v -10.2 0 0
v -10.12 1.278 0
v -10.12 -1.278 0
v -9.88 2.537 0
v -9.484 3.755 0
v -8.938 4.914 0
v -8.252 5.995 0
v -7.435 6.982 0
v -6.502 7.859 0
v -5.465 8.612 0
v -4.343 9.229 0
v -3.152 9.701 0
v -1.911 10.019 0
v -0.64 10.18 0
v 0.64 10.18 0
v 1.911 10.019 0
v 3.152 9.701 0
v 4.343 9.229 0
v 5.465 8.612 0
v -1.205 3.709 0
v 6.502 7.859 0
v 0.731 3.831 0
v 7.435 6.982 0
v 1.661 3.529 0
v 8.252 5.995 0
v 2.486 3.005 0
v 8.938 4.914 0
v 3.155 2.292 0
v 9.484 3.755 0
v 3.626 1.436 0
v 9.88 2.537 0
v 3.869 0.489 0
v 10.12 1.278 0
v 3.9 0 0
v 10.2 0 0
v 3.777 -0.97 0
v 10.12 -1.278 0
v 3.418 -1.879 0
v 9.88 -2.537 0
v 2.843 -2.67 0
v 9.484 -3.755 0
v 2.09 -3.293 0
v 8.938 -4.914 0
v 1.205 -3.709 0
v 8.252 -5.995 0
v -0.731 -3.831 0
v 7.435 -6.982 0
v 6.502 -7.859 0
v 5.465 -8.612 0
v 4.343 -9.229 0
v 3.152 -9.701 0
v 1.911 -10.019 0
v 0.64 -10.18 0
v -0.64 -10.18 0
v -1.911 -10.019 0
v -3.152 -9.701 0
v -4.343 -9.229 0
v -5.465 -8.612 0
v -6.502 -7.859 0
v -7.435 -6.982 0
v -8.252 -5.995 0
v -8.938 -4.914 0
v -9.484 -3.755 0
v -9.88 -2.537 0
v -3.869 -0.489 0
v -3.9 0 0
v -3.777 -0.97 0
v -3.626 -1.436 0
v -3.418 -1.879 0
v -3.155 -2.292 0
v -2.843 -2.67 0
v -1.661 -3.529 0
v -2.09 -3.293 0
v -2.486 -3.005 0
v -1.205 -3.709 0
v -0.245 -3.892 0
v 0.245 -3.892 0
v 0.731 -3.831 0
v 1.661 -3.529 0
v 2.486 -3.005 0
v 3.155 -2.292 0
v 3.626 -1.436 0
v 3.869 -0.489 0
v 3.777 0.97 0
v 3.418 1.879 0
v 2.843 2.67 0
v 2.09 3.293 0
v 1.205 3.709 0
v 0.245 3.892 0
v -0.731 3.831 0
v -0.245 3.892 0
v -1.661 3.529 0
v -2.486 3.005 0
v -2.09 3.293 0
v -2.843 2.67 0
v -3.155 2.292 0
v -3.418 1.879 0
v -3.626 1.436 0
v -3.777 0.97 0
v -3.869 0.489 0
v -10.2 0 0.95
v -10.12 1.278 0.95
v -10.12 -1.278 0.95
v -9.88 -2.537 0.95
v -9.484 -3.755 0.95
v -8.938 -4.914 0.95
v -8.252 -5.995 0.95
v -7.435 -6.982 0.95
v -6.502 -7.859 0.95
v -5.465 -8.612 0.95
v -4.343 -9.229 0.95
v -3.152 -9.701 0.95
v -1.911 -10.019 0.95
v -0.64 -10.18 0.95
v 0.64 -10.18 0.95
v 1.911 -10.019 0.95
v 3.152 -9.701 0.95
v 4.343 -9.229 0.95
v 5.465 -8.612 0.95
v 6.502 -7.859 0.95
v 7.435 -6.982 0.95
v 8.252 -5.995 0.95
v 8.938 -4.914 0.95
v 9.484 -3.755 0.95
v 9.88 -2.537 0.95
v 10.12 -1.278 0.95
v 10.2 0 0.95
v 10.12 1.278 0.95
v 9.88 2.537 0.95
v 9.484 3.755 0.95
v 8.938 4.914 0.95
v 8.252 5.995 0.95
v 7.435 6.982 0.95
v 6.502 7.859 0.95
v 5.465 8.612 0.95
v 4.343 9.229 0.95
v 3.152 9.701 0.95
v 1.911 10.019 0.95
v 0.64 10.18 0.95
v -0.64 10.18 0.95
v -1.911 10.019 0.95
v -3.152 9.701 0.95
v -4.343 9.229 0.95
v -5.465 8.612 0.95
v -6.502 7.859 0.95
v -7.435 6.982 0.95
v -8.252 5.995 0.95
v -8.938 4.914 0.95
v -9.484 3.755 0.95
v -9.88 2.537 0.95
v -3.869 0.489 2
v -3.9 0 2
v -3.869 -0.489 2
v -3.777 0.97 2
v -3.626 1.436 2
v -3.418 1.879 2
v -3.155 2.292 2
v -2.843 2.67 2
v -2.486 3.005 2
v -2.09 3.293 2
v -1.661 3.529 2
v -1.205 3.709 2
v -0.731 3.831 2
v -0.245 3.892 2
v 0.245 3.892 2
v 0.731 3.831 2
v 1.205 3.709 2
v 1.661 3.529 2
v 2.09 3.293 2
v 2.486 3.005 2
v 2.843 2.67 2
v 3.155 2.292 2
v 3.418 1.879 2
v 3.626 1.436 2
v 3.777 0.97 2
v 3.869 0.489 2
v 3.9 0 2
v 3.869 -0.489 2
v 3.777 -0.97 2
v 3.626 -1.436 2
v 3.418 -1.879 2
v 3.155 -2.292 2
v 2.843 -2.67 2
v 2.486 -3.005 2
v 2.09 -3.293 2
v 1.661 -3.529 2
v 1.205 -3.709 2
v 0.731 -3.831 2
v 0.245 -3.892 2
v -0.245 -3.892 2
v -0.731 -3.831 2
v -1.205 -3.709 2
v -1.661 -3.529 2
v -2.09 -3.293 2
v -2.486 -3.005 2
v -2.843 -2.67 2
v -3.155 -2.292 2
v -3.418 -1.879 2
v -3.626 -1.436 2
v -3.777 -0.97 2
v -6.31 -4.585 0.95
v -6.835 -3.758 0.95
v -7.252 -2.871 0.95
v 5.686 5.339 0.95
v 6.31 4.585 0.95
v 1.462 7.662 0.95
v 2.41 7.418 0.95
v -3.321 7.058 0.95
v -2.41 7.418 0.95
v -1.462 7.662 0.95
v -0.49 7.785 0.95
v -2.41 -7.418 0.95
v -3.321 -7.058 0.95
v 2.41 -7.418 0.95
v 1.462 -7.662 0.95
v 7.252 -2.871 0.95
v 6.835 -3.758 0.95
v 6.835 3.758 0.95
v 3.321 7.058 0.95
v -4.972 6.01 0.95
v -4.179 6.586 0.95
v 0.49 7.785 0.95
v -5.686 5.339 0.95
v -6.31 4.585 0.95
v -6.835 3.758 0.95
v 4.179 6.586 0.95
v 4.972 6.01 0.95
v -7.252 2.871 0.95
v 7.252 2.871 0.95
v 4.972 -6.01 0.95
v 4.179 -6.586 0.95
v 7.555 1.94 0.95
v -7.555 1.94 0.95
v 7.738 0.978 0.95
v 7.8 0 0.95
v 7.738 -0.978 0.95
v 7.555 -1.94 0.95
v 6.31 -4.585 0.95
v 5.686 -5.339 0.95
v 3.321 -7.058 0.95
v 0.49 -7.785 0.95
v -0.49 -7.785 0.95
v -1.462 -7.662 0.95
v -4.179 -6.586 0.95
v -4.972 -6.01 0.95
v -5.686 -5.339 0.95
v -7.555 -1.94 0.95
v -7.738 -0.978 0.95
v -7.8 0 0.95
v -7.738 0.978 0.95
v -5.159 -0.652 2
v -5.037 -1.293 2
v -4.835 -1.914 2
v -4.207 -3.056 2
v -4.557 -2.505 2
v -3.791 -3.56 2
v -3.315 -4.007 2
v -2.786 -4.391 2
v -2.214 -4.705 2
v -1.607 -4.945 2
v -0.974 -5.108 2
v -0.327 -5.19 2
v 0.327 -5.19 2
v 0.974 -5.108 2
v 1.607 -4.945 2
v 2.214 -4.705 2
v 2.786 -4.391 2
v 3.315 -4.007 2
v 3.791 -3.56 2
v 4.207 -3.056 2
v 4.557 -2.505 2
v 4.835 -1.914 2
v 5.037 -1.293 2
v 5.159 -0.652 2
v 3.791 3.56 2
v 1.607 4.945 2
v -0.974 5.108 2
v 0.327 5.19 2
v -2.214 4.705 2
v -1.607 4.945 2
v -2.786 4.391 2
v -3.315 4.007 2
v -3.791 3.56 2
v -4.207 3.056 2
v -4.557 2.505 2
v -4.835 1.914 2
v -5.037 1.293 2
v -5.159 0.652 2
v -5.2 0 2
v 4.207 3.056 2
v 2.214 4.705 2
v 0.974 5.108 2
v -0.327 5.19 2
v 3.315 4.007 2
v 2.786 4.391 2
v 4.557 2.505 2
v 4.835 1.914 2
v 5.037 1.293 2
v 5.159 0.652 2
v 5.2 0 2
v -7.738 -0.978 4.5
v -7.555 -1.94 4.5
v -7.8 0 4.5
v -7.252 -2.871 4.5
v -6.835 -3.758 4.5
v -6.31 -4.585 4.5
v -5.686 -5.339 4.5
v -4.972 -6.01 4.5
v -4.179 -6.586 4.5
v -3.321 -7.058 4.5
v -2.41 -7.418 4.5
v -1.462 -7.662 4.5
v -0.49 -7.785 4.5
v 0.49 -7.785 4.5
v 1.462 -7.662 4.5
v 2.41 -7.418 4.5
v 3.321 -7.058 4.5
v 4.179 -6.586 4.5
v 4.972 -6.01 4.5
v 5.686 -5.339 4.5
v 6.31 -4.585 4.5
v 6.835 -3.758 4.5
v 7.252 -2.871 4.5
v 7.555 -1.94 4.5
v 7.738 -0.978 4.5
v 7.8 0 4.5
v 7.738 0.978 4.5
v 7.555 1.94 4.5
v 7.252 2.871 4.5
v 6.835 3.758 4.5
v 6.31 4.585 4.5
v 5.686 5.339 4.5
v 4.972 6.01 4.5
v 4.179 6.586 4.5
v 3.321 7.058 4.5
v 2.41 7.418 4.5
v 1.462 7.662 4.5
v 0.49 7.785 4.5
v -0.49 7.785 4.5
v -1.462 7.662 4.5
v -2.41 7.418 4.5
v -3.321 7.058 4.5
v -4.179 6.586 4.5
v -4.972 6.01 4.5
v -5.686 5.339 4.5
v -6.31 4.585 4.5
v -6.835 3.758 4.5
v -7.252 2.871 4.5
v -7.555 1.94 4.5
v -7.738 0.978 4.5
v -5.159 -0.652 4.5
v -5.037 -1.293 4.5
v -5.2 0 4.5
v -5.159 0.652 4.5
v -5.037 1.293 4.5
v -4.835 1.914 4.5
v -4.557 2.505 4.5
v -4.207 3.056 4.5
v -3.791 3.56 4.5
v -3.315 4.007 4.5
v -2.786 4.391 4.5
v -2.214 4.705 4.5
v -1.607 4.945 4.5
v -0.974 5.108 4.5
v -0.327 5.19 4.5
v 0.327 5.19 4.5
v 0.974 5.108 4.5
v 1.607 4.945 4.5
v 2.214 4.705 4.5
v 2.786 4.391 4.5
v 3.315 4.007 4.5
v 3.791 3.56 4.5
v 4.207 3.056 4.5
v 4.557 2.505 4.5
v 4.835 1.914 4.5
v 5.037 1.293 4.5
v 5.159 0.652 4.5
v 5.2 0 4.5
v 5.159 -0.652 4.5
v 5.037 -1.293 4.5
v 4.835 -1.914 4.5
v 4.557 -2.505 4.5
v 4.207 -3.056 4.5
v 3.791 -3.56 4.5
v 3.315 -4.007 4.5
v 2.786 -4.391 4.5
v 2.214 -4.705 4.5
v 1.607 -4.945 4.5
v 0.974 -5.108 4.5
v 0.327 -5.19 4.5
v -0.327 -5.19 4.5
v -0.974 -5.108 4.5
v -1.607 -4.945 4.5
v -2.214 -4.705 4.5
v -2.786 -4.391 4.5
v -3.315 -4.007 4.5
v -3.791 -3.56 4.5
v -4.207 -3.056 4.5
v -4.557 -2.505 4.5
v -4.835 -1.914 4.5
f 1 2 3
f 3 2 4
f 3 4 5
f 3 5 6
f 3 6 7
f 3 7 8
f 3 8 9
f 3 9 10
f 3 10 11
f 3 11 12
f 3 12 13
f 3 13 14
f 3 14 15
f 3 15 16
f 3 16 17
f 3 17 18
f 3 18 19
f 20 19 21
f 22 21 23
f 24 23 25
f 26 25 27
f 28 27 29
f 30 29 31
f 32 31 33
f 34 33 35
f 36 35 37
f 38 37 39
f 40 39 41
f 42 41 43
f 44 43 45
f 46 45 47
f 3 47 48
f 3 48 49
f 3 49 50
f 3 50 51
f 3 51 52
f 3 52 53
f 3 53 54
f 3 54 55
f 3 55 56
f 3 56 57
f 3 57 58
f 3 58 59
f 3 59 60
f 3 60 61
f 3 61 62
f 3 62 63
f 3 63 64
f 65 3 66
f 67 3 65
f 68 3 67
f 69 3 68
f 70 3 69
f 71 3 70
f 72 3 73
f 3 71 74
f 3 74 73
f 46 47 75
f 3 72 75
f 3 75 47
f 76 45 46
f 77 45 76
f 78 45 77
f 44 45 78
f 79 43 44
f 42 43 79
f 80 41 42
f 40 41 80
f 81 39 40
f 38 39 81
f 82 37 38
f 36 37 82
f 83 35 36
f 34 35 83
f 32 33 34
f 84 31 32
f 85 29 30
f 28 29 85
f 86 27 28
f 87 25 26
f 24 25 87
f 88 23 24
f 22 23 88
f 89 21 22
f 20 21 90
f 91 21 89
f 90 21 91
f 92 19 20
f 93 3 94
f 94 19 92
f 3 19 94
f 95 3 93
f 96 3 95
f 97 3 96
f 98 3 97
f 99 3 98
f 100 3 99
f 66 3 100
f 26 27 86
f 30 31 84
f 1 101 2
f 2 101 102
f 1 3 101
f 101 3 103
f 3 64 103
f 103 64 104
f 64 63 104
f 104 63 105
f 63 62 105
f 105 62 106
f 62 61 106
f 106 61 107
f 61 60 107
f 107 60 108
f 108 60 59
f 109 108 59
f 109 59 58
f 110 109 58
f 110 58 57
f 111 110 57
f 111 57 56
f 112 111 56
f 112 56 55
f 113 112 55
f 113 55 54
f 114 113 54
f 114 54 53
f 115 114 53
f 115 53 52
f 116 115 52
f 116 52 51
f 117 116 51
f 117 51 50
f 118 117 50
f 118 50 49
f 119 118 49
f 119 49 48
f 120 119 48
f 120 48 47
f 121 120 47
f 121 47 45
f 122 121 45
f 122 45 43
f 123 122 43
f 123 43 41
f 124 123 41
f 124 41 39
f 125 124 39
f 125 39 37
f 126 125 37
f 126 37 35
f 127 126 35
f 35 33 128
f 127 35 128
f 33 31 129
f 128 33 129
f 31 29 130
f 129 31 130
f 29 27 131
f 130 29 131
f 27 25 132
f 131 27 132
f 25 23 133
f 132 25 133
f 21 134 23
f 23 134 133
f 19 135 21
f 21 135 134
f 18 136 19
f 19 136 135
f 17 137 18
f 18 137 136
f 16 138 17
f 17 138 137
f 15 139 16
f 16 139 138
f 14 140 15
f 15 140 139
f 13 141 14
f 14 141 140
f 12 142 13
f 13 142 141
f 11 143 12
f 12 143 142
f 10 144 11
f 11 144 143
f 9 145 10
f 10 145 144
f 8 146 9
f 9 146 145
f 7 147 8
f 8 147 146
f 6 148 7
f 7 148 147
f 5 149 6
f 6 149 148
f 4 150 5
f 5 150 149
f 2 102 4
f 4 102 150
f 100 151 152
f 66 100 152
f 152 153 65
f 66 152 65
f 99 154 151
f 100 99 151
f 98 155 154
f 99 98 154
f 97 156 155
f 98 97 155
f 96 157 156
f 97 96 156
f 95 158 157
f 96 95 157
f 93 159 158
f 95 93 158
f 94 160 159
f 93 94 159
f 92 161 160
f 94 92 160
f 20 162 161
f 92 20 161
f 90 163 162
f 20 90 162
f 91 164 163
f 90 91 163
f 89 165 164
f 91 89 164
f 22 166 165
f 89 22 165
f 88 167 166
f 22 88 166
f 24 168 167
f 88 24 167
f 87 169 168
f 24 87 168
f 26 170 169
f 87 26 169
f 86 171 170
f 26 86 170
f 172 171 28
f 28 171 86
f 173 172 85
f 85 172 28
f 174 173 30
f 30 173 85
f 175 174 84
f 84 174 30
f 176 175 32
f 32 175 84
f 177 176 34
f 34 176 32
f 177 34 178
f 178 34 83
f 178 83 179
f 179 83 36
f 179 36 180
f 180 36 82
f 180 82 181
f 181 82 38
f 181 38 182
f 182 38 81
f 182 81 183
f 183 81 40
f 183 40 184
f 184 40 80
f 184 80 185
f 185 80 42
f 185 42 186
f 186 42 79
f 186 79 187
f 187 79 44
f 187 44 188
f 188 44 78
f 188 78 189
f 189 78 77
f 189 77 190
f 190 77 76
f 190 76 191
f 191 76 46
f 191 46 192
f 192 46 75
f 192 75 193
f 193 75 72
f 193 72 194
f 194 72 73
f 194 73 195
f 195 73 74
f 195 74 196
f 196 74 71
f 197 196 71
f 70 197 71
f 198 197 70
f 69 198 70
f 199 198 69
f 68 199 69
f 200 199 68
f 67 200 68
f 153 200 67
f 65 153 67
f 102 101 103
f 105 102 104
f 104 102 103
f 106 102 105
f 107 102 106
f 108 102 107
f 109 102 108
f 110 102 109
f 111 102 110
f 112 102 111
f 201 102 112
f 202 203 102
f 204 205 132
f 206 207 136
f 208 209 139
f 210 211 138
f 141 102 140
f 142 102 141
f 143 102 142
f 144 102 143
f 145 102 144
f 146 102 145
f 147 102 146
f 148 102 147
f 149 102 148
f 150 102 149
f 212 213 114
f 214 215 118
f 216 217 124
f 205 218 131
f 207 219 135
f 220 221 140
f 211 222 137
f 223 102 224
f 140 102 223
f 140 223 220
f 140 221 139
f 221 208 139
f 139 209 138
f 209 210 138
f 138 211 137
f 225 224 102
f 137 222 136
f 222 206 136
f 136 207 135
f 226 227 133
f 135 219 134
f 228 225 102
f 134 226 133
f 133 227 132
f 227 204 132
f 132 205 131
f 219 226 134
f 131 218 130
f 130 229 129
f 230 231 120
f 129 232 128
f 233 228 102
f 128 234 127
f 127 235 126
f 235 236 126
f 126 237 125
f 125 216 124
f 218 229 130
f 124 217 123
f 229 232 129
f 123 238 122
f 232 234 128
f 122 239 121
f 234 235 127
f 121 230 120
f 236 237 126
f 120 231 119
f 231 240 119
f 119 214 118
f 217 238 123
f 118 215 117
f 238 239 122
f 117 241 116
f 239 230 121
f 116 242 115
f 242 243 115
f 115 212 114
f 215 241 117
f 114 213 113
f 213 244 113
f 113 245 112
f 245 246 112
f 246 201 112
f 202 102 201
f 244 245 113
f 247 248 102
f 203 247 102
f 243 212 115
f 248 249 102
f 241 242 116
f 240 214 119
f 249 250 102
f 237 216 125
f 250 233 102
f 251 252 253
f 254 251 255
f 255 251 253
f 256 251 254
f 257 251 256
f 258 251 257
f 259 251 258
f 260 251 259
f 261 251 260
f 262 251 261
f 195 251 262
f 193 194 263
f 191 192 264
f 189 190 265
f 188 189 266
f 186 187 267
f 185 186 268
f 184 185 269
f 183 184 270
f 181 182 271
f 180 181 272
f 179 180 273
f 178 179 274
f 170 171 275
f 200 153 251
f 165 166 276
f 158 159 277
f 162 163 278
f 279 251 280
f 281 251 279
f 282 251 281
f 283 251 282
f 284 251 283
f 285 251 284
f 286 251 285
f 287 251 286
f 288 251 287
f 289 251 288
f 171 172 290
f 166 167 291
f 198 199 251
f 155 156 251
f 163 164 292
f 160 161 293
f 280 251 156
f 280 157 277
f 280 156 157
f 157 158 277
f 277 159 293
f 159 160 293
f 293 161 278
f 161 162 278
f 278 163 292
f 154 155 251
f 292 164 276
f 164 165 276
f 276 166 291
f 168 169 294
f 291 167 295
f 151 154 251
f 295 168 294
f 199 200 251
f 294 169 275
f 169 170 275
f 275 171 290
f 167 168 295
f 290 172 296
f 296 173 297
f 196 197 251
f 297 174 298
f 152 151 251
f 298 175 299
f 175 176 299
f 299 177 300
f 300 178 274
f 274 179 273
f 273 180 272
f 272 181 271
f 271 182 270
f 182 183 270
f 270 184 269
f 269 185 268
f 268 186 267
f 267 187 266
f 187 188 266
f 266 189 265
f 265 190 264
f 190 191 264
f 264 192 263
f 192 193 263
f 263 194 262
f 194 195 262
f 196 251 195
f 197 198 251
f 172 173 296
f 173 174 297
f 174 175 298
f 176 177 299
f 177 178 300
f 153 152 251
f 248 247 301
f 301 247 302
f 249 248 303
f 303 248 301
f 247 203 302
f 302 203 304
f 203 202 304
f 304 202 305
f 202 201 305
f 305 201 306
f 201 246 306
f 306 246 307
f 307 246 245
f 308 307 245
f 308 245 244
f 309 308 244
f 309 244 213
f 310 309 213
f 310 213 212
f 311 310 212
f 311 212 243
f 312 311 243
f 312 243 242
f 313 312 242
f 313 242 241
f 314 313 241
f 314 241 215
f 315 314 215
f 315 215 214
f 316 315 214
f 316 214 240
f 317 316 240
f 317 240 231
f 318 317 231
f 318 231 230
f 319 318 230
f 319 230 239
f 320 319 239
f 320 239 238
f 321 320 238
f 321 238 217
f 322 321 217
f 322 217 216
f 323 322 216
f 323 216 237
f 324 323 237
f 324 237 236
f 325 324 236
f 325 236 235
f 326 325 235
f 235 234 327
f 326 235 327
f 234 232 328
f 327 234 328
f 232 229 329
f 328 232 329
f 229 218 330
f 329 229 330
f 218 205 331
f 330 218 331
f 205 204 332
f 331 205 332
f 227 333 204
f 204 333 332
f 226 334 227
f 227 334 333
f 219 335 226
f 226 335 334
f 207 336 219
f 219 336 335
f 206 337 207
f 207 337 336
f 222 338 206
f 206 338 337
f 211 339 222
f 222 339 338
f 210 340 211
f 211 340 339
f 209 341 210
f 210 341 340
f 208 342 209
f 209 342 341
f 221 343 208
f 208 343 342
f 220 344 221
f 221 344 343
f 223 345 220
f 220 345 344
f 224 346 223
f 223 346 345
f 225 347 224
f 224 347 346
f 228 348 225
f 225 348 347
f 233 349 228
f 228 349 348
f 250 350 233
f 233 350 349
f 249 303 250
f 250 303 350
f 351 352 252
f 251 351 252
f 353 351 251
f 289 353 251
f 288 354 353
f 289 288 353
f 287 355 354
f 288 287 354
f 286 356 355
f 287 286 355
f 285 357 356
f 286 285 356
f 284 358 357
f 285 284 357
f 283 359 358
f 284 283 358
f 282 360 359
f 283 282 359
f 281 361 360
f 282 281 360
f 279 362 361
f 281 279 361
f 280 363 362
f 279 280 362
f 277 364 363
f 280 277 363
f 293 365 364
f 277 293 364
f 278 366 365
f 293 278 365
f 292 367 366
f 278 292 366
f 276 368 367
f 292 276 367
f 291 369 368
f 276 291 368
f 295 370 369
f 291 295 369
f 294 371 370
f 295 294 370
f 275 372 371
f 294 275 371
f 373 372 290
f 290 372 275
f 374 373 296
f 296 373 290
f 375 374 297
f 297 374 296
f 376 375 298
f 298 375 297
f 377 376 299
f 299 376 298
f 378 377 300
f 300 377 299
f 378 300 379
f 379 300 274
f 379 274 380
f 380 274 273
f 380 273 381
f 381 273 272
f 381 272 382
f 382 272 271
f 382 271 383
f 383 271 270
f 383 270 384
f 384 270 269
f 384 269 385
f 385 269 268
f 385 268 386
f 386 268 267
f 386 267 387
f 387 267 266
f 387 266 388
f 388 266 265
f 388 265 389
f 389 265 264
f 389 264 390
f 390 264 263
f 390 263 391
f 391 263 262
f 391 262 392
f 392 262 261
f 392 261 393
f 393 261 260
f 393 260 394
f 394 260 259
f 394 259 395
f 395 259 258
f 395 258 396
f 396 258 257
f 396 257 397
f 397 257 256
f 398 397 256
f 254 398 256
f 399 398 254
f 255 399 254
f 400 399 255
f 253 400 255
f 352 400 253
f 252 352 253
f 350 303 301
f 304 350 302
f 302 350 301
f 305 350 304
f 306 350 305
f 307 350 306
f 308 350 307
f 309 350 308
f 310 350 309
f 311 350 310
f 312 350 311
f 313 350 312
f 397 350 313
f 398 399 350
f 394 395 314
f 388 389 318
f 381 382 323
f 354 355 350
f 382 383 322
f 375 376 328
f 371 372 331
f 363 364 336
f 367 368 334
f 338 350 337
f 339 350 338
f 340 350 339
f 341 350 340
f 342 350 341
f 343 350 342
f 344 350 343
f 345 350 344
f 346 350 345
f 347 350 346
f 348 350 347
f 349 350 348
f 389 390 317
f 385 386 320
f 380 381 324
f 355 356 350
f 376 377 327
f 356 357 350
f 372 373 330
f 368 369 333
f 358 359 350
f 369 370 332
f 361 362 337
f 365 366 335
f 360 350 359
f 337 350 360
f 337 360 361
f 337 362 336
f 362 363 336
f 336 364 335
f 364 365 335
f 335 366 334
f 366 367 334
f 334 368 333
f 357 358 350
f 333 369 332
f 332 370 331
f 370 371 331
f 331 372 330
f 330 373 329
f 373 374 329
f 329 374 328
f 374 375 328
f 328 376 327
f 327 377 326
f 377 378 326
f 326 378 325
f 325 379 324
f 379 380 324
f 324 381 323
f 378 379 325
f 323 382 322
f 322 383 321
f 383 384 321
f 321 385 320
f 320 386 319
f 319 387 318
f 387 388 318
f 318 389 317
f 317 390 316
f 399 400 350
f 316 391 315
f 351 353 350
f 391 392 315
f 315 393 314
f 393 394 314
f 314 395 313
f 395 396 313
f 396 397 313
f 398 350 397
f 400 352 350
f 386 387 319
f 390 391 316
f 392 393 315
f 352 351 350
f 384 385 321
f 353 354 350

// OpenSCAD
// PRUSA iteration3
// 624 bearing belt guide
// GNU GPL v3
// Josef Průša <iam@josefprusa.cz> and contributors
// http://www.reprap.org/wiki/Prusa_Mendel
// http://prusamendel.org

wall= 1.2;
clearence= 0.1; 

module belt_guide_base(){
 cylinder(r=6.5+wall+clearence, h=5-0.5, $fn=50);
 cylinder(r=6.5+wall+clearence+2*wall, h=0.95, $fn=50);
}

module belt_guide_holes(){
 translate([0,0,2]) cylinder(r=5.1+clearence, h=10, $fn=50);
 translate([0,0,-1]) cylinder(r=5+wall+clearence-2*wall, h=10, $fn=50);
}

// Final part
module belt_guide(){
 difference(){
  belt_guide_base();
  belt_guide_holes();
 }
}

belt_guide();
